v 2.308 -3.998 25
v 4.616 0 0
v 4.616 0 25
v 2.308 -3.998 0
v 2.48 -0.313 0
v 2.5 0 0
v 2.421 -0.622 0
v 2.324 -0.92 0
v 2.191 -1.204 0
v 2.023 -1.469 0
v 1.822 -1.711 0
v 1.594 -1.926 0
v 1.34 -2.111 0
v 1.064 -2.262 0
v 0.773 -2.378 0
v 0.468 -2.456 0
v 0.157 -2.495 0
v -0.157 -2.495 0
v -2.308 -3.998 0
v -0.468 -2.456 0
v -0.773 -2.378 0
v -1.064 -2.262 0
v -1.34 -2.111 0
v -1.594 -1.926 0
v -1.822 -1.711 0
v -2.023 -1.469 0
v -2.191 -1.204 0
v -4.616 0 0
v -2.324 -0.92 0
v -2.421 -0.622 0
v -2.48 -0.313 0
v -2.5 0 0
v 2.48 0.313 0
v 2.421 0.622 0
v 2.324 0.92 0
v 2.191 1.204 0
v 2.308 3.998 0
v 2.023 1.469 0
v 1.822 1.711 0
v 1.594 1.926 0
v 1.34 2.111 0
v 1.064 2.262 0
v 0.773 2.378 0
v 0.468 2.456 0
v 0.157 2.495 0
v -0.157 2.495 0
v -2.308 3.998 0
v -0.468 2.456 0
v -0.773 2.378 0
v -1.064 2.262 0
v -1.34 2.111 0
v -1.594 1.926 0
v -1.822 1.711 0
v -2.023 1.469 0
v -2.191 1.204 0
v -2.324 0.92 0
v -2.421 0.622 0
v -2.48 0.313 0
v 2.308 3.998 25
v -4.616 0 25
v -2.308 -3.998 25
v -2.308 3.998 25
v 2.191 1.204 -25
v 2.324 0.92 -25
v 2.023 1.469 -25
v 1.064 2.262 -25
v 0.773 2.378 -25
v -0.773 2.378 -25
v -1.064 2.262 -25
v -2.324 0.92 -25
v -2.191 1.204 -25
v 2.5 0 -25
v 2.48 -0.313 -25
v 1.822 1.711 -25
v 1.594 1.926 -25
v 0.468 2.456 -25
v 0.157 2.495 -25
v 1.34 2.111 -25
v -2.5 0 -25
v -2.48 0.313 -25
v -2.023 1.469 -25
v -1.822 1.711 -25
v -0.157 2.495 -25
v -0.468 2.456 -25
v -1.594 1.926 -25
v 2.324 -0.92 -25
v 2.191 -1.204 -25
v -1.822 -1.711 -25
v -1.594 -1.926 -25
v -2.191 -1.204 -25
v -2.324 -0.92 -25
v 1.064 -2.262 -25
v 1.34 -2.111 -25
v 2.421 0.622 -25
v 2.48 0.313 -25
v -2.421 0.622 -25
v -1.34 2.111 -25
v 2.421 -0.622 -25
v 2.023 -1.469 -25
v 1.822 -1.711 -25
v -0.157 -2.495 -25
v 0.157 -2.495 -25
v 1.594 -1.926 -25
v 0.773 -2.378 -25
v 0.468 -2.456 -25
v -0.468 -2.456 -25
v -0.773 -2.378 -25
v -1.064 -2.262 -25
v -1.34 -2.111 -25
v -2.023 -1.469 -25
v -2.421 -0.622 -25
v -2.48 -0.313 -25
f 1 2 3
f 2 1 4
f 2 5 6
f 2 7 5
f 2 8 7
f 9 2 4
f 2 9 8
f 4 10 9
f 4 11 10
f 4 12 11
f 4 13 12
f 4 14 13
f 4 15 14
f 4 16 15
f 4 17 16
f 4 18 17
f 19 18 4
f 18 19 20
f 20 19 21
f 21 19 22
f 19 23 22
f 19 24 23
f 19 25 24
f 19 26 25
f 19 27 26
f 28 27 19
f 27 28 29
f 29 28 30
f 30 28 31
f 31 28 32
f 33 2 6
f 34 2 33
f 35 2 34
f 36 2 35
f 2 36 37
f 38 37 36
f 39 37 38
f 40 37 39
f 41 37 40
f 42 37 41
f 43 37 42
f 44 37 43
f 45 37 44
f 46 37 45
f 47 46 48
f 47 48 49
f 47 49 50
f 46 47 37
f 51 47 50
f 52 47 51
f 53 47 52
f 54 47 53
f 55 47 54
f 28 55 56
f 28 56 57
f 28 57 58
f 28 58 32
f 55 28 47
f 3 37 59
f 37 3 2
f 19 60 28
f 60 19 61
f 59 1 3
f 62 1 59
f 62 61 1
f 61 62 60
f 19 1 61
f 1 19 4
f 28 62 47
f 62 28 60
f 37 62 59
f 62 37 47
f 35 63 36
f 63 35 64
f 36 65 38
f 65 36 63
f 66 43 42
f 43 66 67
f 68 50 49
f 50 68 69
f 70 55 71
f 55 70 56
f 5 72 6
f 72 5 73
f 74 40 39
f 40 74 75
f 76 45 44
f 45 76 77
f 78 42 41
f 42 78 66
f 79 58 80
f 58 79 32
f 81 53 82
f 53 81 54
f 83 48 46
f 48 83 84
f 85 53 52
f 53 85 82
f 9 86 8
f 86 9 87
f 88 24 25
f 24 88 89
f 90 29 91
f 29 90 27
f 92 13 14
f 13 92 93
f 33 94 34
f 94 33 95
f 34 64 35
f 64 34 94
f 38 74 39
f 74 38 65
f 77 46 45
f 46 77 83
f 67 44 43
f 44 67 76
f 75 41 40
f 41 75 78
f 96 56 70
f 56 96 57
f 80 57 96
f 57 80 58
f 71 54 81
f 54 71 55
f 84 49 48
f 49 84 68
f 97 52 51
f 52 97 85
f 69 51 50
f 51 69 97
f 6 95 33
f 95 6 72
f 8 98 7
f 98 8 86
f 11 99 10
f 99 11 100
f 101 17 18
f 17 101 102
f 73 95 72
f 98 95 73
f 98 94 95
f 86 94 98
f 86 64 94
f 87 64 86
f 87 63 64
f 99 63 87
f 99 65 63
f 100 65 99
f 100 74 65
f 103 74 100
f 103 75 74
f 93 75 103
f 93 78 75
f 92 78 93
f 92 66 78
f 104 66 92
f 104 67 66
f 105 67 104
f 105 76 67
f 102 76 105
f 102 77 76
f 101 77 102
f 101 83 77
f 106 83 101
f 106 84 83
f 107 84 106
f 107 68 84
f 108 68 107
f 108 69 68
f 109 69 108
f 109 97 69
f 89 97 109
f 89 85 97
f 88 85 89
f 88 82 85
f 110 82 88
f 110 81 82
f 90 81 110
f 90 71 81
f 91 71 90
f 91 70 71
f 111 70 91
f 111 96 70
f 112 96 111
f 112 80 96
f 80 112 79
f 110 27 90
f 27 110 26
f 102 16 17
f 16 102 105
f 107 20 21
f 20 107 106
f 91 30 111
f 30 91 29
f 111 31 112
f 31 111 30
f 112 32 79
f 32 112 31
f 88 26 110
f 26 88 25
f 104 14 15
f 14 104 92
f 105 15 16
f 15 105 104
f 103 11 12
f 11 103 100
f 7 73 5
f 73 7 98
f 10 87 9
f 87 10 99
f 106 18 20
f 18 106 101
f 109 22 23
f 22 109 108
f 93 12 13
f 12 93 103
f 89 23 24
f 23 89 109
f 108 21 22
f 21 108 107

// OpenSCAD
$fn = 50;


difference() {
	union() {
		linear_extrude(height = 25) {
			polygon(points = [[4.6160000000, 0.0000000000], [2.3080000000, 3.9975732639], [-2.3080000000, 3.9975732639], [-4.6160000000, 0.0000000000], [-2.3080000000, -3.9975732639], [2.3080000000, -3.9975732639]]);
		}
		translate(v = [0, 0, -25]) {
			cylinder(h = 25, r = 2.5000000000);
		}
	}
	union();
}
